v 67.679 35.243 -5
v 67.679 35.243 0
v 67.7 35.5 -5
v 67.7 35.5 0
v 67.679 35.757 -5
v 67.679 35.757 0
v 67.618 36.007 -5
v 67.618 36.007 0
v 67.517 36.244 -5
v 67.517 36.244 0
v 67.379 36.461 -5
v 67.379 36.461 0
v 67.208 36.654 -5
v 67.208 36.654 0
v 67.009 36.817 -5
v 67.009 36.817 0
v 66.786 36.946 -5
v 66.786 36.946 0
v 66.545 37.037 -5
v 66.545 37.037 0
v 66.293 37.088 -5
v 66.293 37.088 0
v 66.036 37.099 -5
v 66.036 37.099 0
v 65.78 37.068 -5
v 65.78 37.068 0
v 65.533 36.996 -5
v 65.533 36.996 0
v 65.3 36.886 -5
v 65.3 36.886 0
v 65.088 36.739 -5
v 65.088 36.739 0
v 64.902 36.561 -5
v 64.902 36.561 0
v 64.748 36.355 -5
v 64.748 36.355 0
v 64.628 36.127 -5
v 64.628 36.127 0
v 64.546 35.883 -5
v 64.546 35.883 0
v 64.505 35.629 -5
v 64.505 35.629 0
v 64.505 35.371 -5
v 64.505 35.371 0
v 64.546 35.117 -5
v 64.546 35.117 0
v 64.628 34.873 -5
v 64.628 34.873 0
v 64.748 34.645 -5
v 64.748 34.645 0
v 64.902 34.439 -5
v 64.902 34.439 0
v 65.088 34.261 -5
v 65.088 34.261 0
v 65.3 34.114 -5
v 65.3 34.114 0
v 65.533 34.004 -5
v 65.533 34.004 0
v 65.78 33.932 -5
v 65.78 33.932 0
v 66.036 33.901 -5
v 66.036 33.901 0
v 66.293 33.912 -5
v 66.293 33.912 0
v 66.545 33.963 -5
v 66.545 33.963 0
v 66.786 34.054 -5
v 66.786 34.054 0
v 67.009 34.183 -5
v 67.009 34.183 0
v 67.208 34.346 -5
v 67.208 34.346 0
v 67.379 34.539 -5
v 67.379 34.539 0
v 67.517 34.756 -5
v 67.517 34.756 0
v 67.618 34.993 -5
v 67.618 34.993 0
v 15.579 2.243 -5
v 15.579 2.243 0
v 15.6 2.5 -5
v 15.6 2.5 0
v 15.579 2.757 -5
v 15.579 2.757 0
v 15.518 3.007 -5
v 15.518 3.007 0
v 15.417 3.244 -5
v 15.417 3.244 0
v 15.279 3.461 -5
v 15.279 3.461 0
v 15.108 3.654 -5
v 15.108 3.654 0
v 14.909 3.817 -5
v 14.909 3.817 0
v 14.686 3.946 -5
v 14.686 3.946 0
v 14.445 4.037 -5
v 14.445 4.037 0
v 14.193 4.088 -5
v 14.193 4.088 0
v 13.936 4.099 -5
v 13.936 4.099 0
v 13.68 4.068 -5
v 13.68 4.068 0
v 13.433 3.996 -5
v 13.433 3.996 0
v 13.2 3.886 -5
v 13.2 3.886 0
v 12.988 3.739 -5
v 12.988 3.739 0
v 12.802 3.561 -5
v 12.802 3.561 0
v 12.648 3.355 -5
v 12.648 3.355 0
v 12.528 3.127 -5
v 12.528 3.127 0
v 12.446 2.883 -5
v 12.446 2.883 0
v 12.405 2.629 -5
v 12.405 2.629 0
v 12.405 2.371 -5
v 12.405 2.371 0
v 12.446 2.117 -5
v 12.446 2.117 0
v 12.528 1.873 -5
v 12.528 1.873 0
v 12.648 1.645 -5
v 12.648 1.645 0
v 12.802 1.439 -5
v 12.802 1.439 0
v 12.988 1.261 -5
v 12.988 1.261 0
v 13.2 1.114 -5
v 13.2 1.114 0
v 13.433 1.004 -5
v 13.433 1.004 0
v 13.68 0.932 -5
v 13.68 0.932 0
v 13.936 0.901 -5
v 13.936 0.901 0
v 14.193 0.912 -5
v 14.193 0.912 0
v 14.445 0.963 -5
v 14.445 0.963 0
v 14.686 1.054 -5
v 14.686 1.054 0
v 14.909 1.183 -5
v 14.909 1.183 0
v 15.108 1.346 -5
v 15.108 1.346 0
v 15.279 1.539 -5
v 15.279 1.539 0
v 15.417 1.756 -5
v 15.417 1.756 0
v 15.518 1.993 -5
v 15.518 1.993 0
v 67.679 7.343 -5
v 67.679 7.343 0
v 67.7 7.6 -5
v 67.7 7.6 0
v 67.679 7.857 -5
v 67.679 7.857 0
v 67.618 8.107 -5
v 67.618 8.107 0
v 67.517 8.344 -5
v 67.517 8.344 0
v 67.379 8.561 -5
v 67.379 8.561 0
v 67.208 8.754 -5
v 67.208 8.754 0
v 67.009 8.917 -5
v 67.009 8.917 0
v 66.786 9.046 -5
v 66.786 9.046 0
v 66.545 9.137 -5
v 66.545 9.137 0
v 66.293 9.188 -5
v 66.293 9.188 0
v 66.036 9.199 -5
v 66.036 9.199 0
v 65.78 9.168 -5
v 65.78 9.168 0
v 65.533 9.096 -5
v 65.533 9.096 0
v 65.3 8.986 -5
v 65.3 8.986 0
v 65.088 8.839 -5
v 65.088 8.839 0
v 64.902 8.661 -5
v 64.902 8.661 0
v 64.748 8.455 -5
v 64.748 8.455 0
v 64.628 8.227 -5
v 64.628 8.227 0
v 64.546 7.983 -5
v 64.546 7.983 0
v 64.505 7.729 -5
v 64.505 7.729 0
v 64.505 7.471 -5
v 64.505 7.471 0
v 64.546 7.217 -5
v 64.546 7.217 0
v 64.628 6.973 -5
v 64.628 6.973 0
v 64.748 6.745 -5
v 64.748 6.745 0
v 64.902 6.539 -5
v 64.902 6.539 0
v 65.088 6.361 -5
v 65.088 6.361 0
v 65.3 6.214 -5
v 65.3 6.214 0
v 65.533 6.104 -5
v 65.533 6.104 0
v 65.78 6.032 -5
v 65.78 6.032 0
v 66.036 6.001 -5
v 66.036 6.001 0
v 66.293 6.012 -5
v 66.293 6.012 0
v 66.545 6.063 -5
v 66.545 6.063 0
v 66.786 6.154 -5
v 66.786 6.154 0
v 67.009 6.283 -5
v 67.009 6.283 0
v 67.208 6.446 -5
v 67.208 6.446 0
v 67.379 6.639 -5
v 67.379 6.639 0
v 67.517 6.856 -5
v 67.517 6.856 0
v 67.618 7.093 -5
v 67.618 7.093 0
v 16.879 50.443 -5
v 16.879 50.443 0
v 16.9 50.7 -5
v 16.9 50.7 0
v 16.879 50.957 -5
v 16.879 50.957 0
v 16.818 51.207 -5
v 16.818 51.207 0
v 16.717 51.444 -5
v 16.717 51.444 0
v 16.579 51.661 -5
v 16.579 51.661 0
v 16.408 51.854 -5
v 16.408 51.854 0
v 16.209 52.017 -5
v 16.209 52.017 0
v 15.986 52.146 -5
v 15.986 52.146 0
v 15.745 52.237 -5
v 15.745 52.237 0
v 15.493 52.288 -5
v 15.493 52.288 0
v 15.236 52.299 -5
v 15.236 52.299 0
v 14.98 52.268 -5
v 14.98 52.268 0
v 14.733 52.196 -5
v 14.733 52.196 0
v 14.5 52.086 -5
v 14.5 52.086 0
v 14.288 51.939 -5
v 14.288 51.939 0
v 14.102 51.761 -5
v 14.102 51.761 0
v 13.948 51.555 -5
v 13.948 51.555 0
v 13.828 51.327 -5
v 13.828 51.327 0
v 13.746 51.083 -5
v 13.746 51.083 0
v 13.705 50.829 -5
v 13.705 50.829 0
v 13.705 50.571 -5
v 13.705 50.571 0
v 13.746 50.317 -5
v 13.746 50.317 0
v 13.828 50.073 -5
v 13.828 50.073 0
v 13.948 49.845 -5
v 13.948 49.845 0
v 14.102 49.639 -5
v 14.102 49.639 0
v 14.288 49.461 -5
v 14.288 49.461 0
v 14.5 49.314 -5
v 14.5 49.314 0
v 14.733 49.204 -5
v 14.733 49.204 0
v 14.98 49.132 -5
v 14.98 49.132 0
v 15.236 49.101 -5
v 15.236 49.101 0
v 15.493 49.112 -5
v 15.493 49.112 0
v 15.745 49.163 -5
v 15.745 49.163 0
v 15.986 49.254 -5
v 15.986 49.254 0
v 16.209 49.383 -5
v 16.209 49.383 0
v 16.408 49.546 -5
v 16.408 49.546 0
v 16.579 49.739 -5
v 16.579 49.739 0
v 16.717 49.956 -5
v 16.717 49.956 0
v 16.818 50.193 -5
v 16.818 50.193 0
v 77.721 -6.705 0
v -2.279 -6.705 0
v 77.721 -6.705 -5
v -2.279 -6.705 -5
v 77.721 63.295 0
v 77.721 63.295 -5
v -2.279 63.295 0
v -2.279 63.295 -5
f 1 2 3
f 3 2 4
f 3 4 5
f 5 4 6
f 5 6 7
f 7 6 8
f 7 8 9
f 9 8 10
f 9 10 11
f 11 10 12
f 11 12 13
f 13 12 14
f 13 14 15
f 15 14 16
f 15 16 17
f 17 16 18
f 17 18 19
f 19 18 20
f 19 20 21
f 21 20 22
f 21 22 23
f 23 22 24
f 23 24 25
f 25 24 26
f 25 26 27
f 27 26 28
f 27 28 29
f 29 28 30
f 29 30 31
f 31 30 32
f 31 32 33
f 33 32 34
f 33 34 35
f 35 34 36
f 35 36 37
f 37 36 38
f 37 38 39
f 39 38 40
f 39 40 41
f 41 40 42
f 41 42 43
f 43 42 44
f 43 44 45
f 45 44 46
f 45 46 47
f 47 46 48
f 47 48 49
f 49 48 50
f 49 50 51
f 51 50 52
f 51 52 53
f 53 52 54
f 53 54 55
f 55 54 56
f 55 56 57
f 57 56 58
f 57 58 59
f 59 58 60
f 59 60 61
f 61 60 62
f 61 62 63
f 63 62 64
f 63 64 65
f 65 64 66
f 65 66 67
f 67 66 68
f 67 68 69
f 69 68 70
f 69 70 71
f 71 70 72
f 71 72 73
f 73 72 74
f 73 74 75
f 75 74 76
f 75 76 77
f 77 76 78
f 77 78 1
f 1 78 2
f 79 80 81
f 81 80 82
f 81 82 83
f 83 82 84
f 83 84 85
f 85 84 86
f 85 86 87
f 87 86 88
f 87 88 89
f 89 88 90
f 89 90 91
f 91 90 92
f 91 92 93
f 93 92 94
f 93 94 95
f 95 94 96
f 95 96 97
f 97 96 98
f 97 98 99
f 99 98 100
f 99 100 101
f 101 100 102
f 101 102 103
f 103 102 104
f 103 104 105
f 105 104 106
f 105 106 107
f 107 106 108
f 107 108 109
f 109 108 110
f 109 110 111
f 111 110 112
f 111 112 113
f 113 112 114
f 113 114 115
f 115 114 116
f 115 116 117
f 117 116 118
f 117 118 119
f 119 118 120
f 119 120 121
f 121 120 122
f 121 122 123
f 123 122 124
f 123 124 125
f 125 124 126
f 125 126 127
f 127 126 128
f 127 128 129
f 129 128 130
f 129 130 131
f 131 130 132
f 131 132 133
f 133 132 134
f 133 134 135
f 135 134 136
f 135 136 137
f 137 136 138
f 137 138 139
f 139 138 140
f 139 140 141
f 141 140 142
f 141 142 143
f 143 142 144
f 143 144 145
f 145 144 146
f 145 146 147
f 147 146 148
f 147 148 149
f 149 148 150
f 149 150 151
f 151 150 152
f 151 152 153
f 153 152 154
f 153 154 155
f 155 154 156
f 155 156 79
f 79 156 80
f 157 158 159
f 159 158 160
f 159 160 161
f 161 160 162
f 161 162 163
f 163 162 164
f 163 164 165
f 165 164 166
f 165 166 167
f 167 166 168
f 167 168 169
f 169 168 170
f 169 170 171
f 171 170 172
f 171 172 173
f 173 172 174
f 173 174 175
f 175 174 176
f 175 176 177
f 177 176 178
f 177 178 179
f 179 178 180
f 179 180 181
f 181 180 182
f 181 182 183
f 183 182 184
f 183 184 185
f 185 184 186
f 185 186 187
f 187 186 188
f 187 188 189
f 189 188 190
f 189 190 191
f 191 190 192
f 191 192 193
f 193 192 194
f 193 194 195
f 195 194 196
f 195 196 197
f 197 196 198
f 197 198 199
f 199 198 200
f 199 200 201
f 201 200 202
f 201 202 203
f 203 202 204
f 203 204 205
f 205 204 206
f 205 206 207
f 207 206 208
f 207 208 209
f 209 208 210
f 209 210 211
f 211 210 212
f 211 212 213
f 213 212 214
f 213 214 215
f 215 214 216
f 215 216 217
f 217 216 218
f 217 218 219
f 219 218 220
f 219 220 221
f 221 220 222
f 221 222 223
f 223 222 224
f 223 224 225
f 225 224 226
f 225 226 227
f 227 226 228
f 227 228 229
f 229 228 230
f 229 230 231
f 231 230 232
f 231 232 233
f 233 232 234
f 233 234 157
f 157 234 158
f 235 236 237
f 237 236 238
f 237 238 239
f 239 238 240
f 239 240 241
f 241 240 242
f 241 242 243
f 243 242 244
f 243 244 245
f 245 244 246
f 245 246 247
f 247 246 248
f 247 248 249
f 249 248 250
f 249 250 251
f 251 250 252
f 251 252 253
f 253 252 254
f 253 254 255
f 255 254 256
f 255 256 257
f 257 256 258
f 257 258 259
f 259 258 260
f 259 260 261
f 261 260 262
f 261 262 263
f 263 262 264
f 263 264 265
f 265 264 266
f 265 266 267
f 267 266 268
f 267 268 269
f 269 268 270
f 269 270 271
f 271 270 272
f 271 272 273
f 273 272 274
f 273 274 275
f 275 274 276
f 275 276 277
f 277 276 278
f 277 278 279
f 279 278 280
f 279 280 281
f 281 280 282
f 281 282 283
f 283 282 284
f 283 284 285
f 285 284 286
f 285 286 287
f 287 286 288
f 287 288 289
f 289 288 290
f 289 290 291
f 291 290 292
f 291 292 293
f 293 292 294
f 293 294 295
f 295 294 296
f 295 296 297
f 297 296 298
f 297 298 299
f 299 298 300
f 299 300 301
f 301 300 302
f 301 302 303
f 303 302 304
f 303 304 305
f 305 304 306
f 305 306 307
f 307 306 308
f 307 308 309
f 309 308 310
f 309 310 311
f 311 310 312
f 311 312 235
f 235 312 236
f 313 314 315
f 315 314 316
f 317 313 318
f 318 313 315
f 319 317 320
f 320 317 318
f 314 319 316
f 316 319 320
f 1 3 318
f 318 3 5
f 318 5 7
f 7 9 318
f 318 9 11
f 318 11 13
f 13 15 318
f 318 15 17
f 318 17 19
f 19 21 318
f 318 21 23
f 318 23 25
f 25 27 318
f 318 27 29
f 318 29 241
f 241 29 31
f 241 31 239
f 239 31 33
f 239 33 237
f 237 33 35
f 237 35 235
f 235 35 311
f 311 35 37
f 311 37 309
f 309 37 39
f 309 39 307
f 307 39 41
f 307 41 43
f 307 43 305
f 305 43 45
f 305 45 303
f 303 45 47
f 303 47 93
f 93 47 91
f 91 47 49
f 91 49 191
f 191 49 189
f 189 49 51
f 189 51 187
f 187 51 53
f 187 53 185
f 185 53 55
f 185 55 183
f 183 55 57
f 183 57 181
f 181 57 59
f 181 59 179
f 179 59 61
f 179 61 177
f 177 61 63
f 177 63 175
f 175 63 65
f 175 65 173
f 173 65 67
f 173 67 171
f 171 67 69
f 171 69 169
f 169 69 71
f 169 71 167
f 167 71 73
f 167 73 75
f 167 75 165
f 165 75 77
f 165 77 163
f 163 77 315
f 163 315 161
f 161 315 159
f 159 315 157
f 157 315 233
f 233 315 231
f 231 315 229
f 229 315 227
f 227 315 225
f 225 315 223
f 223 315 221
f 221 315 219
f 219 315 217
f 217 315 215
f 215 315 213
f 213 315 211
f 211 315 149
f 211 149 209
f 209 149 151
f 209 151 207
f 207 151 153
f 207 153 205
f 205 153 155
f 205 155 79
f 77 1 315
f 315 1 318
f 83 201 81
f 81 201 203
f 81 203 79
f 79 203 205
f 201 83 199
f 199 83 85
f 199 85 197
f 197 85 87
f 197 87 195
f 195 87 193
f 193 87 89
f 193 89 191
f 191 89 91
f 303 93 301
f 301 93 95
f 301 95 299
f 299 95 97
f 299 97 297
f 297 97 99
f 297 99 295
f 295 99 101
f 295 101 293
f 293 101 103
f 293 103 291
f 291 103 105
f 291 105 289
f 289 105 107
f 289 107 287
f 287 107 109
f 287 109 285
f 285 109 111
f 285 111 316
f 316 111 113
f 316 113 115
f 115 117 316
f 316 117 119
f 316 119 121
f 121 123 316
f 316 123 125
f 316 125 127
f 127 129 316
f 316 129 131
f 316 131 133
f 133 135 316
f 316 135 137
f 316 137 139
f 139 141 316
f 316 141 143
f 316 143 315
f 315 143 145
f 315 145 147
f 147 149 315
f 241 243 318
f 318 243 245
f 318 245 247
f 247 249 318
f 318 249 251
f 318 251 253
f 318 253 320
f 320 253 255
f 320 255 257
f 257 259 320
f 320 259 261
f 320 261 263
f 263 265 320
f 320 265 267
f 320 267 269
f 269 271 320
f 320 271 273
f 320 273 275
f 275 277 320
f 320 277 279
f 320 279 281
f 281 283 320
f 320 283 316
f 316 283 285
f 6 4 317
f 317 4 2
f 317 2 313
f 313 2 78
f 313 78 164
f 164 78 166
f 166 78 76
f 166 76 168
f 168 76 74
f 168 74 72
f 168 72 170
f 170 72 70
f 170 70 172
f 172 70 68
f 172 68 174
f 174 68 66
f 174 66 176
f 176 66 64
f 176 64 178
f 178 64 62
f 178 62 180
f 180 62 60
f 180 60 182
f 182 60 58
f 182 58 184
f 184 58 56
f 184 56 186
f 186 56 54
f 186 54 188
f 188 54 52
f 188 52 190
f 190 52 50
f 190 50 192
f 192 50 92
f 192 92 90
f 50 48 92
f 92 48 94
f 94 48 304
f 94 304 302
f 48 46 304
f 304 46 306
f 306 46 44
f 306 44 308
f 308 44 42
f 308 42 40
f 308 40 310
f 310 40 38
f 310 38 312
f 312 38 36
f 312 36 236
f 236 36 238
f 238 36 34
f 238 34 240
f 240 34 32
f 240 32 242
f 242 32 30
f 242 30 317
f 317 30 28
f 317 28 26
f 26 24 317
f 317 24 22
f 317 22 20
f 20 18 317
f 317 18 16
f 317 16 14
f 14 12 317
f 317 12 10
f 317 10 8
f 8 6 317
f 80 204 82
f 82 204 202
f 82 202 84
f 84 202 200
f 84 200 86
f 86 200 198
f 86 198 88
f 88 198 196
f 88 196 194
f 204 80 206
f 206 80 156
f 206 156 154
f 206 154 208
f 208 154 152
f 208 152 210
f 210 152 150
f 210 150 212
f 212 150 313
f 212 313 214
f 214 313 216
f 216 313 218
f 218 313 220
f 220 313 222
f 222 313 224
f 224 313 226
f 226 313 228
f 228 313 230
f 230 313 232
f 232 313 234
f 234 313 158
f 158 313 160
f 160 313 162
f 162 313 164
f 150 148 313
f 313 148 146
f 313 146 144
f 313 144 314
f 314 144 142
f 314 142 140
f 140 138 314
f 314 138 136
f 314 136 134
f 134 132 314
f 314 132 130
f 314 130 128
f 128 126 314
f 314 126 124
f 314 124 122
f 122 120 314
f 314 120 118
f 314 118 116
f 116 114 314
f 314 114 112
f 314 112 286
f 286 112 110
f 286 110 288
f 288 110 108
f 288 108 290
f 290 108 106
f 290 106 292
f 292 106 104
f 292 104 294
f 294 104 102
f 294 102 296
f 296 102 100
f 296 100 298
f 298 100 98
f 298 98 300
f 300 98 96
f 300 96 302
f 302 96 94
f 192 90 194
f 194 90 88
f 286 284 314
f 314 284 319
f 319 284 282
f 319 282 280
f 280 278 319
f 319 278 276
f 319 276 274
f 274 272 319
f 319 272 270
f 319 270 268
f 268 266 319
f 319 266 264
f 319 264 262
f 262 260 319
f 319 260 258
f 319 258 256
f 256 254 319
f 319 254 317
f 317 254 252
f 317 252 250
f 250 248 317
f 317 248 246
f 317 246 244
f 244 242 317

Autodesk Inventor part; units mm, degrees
ref_plane "YZ Plane" through (0, 0, 0) normal (1, 0, 0) x (0, 1, 0)
ref_plane "XZ Plane" through (0, 0, 0) normal (0, 1, 0) x (-1, 0, 0)
ref_plane "XY Plane" through (0, 0, 0) normal (0, 0, 1) x (1, 0, 0)
sketch "Arduino Uno" plane through (0, 0, 0) normal (0, 0, 1) x (1, 0, 0)
  line L0 (0, 0) -> (68.6, 0)
  line L1 (68.6, 0) -> (68.6, 53.3)
  line L2 (68.6, 53.3) -> (0, 53.3)
  line L3 (0, 53.3) -> (0, 0)
  circle A0 centre (14, 2.5) radius 1.6
  circle A1 centre (66.1, 7.6) radius 1.6
  circle A2 centre (66.1, 35.5) radius 1.6
  circle A3 centre (15.3, 50.7) radius 1.6
  dimension "d6" = 68.6
  dimension "d7" = 53.3
  dimension "d34" = 3.2
  dimension "d35" = 2.5
  dimension "d36" = 14
  dimension "d37" = 3.2
  dimension "d38" = 66.1
  dimension "d39" = 7.6
  dimension "d40" = 3.2
  dimension "d41" = 35.5
  dimension "d42" = 66.1
  dimension "d43" = 3.2
  dimension "d44" = 15.3
  dimension "d45" = 50.7
sketch "Sketch2" plane through (0, 0, 0) normal (0, 0, 1) x (1, 0, 0)
  line L0 (0, 0) -> (8, 0)
  line L1 (-2.2793, -6.7051) -> (-2.2793, 63.2949)
  line L2 (-2.2793, 63.2949) -> (77.7207, 63.2949)
  line L3 (77.7207, 63.2949) -> (77.7207, -6.7051)
  line L4 (77.7207, -6.7051) -> (-2.2793, -6.7051)
  dimension "d27" = 8
  dimension "d28" = 70
  dimension "d29" = 80
extrude "Back Plate" add sketch "Sketch2" against normal blind 5
extrude "Uno Mounting Holes" cut sketch "Arduino Uno" against normal through all contours A0 | A1 | A2 | A3
properties part number "UNO-Mounting-Holes"
